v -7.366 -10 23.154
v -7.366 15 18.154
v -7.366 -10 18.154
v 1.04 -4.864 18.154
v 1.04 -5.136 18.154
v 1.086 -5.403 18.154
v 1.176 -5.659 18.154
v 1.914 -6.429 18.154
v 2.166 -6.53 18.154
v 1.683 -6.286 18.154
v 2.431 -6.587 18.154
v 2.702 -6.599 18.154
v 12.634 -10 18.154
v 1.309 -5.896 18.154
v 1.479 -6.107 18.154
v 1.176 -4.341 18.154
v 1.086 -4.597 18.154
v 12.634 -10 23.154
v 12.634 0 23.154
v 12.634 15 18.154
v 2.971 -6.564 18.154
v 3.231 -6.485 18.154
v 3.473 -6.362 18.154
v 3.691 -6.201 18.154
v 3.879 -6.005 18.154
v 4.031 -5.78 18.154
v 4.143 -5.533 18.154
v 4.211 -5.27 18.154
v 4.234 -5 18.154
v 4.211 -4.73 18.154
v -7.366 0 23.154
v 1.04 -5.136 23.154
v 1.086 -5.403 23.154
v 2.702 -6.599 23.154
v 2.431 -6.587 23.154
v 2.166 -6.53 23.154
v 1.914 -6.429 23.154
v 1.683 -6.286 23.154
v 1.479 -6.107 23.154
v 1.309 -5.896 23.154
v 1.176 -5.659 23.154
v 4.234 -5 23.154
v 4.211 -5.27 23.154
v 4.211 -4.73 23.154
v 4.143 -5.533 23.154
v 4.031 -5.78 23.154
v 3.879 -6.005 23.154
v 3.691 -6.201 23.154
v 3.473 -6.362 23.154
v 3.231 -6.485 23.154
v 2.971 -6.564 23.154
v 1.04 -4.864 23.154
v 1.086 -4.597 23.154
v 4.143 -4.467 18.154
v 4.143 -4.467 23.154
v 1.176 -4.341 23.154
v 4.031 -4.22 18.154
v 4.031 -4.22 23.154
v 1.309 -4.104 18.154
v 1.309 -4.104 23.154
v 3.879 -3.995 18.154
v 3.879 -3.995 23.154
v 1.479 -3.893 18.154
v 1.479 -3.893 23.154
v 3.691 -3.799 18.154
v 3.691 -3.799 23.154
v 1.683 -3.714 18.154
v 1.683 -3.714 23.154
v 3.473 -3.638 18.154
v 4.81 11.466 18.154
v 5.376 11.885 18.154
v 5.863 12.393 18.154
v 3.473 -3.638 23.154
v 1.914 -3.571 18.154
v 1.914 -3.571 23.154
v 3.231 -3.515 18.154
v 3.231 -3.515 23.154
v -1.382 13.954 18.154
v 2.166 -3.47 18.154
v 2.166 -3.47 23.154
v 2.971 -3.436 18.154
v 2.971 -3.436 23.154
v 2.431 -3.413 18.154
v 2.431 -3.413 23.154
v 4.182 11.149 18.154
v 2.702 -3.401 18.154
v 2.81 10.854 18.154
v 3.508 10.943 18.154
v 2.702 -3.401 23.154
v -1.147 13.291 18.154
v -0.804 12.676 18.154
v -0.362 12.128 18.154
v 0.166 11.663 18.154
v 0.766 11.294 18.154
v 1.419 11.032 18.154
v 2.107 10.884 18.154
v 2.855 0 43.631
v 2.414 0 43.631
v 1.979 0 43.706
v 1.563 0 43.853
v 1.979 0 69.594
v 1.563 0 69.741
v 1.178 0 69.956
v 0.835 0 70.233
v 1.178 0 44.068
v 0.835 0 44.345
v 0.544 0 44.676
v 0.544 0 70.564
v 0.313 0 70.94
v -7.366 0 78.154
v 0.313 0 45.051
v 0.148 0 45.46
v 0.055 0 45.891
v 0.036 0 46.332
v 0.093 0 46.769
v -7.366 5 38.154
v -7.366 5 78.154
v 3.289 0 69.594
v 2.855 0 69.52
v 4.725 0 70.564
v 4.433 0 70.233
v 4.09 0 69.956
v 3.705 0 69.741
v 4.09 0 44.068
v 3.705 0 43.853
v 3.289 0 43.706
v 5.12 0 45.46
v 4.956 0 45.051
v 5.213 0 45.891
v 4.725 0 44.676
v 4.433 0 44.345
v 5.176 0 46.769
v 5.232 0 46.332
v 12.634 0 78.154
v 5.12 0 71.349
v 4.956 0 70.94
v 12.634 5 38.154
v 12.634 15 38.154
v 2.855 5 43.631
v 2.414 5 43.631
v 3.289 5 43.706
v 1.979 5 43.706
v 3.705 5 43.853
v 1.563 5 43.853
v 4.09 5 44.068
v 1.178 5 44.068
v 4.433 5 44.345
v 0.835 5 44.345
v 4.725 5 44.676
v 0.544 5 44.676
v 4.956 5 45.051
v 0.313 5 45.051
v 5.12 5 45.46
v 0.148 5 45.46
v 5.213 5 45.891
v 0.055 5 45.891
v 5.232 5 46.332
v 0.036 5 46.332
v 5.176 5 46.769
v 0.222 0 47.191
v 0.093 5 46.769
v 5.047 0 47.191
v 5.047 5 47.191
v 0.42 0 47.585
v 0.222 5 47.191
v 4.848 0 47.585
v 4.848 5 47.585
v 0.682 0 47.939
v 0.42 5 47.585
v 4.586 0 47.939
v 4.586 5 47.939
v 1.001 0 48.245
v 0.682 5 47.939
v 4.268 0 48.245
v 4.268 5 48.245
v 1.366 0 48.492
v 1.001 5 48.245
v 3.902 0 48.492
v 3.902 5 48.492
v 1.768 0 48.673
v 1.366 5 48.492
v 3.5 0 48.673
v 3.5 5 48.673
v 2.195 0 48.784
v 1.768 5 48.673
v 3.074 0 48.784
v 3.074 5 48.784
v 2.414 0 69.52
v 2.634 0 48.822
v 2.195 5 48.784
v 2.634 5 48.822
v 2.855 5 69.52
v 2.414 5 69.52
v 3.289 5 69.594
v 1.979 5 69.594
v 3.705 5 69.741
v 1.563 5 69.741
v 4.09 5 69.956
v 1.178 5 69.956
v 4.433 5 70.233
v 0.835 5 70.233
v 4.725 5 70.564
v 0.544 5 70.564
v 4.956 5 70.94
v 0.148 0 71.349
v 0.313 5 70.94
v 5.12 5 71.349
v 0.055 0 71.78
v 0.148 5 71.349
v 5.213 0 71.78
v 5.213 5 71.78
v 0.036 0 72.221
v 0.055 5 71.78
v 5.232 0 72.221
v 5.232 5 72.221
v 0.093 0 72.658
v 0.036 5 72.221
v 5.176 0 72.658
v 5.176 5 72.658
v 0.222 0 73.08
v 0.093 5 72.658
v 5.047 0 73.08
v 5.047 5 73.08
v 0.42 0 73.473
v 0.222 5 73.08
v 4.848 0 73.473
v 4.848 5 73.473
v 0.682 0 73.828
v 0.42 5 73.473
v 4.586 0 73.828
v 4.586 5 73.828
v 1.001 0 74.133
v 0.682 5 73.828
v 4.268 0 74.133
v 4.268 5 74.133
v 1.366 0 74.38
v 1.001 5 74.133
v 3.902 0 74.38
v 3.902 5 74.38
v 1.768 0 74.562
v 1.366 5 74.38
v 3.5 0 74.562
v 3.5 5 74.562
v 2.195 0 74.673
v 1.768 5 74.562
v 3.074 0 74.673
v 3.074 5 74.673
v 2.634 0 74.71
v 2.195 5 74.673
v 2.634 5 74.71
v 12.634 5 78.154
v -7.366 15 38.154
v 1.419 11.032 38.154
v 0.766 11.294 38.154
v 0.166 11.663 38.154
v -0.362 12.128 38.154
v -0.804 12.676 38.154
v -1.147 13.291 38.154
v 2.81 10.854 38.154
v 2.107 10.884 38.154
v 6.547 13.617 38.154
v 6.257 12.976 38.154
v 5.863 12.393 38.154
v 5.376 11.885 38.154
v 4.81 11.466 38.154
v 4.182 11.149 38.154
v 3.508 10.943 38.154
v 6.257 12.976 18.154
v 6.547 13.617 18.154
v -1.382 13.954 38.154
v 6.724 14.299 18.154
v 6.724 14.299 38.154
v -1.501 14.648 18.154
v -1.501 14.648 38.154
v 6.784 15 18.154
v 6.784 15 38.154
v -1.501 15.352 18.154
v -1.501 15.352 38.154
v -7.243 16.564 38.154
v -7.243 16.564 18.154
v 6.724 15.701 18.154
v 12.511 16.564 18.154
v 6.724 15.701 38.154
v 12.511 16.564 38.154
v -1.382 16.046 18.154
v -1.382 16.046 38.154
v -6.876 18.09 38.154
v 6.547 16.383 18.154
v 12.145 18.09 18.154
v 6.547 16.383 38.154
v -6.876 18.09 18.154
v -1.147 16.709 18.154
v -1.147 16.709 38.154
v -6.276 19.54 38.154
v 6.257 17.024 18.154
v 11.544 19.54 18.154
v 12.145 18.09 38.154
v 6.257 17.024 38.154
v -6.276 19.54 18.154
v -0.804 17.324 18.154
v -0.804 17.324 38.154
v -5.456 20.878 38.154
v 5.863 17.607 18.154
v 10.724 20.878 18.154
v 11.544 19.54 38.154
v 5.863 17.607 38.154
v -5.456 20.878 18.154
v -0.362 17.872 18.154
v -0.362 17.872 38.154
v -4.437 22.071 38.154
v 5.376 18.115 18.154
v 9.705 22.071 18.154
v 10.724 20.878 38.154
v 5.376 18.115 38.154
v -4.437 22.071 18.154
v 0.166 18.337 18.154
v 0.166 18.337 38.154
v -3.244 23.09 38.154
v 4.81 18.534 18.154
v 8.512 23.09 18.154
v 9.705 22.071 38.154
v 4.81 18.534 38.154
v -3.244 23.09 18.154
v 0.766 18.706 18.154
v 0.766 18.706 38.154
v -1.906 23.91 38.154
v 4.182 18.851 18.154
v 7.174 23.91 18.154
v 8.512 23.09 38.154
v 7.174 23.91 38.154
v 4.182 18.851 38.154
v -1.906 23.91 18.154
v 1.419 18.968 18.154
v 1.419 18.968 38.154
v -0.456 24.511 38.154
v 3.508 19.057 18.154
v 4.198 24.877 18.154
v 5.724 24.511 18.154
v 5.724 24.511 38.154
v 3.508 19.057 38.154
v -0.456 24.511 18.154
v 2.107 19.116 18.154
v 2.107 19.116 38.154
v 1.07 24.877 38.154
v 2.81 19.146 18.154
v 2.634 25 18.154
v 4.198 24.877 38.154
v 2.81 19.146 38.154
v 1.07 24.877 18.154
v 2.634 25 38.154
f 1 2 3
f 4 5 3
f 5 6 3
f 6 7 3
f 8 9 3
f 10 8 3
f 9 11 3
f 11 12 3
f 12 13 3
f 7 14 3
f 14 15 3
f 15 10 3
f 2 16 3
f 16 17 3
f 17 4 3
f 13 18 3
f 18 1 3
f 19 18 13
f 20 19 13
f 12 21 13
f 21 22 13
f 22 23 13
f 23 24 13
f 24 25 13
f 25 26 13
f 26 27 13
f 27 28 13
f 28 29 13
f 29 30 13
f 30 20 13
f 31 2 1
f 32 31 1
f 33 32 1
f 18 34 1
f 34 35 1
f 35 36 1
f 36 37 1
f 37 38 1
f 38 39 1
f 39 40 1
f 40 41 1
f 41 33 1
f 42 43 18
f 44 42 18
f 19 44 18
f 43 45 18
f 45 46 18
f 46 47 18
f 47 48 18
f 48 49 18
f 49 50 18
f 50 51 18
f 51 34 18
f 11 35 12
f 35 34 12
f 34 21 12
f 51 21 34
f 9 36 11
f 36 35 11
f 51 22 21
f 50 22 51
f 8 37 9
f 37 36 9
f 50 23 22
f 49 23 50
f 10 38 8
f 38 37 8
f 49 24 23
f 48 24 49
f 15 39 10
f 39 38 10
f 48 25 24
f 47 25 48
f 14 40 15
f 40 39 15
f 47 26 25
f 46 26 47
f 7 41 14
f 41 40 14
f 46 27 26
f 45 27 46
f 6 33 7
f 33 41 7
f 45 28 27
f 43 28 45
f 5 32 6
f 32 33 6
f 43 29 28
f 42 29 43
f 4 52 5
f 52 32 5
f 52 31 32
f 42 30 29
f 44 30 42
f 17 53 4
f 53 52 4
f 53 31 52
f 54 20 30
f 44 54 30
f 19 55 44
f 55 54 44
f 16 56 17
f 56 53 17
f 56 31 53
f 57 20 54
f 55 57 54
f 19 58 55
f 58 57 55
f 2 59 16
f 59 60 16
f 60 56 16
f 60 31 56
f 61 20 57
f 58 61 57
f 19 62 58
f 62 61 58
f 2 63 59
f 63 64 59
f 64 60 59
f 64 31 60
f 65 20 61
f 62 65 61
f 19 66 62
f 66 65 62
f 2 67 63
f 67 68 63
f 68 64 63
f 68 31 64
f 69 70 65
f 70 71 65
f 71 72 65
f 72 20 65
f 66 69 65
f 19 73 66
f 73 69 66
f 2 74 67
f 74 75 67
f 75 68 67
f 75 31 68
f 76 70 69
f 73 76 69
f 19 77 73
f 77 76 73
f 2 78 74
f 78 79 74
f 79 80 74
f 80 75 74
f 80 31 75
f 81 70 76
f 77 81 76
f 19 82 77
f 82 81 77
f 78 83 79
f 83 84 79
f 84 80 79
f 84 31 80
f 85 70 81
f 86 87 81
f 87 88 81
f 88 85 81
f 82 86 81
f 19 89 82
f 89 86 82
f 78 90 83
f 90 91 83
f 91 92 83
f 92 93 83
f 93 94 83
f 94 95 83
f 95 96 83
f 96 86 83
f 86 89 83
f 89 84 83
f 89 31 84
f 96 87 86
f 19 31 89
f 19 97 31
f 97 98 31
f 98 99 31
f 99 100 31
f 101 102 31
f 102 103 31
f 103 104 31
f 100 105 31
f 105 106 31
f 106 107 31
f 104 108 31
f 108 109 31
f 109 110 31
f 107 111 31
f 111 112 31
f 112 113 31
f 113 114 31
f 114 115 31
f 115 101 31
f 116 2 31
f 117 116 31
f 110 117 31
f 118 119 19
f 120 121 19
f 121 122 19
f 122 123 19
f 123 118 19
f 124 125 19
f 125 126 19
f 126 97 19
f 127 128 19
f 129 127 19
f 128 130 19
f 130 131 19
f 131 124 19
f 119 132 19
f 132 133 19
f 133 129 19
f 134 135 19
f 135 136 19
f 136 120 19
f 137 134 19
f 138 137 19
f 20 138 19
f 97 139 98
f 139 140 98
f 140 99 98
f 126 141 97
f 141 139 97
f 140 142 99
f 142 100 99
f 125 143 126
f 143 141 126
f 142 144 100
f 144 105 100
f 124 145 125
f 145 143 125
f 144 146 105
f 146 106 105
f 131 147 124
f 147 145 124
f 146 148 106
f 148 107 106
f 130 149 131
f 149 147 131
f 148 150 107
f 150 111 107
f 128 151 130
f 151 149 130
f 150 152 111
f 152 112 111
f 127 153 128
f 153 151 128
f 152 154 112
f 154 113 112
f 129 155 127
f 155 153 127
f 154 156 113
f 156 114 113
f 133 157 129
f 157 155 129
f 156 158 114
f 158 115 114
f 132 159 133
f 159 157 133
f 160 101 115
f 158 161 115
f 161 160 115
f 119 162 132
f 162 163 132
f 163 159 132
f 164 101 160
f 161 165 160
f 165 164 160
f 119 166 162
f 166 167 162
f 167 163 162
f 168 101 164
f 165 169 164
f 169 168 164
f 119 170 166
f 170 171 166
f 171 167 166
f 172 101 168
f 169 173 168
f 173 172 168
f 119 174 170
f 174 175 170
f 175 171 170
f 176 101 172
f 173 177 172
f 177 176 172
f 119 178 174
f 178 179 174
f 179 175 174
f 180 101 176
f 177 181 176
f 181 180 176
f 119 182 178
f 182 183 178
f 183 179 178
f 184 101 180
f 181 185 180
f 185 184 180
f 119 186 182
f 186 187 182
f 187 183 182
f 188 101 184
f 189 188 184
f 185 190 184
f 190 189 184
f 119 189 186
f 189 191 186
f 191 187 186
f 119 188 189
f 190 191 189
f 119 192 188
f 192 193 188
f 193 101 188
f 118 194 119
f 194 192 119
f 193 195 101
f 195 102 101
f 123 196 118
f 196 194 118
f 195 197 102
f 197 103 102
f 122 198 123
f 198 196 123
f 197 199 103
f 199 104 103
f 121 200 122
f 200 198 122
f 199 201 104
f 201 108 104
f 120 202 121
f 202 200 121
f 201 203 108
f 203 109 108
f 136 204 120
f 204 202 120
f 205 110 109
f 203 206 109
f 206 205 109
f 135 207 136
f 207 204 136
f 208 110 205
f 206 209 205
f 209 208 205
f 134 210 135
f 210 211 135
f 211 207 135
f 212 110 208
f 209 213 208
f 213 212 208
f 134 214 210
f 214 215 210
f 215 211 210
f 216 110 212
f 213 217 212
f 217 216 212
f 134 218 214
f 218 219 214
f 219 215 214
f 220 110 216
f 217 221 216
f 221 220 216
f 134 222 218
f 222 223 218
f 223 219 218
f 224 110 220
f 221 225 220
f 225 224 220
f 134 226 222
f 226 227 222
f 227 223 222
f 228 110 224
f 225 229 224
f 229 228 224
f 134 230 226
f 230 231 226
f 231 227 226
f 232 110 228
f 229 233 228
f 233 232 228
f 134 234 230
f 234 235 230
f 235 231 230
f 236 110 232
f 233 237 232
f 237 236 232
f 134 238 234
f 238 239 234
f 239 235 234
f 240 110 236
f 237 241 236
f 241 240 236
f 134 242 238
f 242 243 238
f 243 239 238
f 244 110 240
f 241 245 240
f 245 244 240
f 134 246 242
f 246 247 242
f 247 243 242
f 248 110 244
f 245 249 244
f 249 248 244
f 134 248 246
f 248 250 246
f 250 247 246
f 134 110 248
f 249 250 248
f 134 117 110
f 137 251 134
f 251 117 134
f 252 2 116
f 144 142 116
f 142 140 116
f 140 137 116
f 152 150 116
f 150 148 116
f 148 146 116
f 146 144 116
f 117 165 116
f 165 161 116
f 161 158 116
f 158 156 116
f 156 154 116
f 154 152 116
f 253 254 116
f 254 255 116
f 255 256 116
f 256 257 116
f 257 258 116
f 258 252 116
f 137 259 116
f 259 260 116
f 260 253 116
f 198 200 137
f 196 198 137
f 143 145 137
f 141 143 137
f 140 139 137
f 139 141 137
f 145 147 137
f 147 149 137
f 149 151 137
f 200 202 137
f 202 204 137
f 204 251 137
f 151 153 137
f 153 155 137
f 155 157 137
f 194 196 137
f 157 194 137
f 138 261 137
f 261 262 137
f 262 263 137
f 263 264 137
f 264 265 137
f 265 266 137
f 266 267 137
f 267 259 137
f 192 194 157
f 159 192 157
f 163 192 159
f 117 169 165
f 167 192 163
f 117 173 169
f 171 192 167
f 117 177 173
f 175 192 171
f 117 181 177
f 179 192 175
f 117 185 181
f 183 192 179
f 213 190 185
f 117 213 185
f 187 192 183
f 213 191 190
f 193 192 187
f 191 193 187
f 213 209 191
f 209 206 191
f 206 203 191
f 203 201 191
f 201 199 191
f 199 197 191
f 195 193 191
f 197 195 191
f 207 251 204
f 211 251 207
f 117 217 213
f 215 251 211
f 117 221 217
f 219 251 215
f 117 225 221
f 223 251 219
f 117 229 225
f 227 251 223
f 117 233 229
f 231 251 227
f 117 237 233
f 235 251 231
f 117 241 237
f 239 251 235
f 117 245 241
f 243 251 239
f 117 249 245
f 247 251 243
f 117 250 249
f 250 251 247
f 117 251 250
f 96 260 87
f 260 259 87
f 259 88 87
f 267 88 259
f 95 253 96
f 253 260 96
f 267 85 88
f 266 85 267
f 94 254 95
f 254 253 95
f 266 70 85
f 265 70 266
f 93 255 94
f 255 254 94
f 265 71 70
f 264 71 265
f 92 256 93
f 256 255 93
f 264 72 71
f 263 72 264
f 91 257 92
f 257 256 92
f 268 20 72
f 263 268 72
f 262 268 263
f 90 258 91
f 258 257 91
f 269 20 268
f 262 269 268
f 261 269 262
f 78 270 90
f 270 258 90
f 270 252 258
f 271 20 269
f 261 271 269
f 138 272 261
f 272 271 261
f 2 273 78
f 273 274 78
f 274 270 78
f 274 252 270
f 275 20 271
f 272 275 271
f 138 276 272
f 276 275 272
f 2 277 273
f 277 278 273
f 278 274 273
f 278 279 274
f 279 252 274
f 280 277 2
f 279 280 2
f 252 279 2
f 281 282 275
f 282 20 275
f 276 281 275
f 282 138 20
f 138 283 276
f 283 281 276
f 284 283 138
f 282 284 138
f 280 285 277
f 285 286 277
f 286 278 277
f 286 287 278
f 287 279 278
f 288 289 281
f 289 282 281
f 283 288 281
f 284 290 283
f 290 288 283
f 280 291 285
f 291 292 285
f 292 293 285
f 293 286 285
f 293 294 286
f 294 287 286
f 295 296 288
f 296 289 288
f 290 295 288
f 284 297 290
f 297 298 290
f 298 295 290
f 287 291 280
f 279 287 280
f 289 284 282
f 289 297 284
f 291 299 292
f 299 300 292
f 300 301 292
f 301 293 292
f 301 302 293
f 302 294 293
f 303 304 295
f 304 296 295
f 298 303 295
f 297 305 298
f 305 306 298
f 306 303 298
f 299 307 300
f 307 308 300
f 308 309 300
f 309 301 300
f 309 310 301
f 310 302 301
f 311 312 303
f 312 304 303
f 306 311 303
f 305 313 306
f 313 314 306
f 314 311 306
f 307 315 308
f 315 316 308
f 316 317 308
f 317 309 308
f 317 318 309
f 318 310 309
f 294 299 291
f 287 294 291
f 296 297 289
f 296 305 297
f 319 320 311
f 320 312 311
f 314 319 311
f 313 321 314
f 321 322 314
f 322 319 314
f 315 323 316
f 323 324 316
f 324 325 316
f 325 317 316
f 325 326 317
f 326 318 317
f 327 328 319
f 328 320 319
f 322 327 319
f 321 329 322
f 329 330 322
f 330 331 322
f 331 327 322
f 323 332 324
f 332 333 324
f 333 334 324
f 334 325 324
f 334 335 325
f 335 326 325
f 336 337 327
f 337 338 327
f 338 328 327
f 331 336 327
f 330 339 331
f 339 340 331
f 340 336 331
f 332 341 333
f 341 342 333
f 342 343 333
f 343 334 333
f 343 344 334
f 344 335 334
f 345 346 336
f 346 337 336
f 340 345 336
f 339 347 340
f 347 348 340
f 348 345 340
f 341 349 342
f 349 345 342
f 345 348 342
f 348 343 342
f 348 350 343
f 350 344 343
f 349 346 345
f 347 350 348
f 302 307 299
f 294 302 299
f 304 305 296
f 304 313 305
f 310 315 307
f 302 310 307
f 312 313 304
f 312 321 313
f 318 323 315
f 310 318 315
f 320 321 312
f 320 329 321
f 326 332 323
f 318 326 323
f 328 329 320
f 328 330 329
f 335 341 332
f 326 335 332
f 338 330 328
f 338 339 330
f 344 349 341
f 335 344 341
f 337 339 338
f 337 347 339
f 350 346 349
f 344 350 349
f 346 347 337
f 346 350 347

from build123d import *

# Parameters (mm, degrees)
SKETCH_1_W          = 20
SKETCH_1_H          = 40
EXTRUDE_1_DEPTH     = 5
SKETCH_2_W          = 20
SKETCH_2_H          = 20
EXTRUDE_2_DEPTH     = 20
SKETCH_3_R          = 4.15
CUT_EXTRUDE_1_DEPTH = 42.044142746
FILLET_1_R          = 10
SKETCH_6_W          = 20
SKETCH_6_H          = 25.791536141
CUT_EXTRUDE_3_DEPTH = 54.65112416
SKETCH_7_W          = 20
SKETCH_7_H          = 5
EXTRUDE_5_DEPTH     = 10
SKETCH_8_W          = 20
SKETCH_8_H          = 5
EXTRUDE_6_DEPTH     = 10
SKETCH_10_R         = 1.6
CUT_EXTRUDE_5_DEPTH = 45.828803841
SKETCH_11_W         = 20
SKETCH_11_H         = 5
EXTRUDE_7_DEPTH     = 20
SKETCH_12_R         = 2.6
CUT_EXTRUDE_7_DEPTH = 82.655934826


with BuildPart() as part:
    # 草图1 → 凸台-拉伸1 (new body)
    with BuildSketch(Plane(origin=(0, 0, 0), x_dir=(1, 0, 0), z_dir=(0, 1, 0))):
        with Locations((2.634146341, -28.154142811)):
            Rectangle(SKETCH_1_W, SKETCH_1_H)
    extrude(amount=EXTRUDE_1_DEPTH)

    # 草图2 → 凸台-拉伸2 (add)
    with BuildSketch(Plane(origin=(0, 5, 0), x_dir=(1, 0, 0), z_dir=(0, 1, 0))):
        with Locations((2.634146341, -28.154142811)):
            Rectangle(SKETCH_2_W, SKETCH_2_H)
    extrude(amount=EXTRUDE_2_DEPTH)

    # 草图3 → 切除-拉伸1 (cut, through all)
    with BuildSketch(Plane.XY.offset(38.154142811)):
        with Locations((2.634146341, 15)):
            Circle(SKETCH_3_R)
    extrude(amount=-CUT_EXTRUDE_1_DEPTH, mode=Mode.SUBTRACT)

    # 圆角1
    fillet_1_edges = [part.edges().sort_by_distance(p)[0] for p in [
        (12.634146341, 25, 28.154142811),
        (-7.365853659, 25, 28.154142811),
    ]]
    fillet(fillet_1_edges, radius=FILLET_1_R - 0.0001)  # a hair under: the kernel refuses the full size

    # 草图6 → 切除-拉伸3 (cut, through all)
    with BuildSketch(Plane(origin=(0, 5, 0), x_dir=(1, 0, 0), z_dir=(0, 1, 0))):
        with Locations((2.634146341, -5.25837474)):
            Rectangle(SKETCH_6_W, SKETCH_6_H)
    extrude(amount=-CUT_EXTRUDE_3_DEPTH, mode=Mode.SUBTRACT)

    # 草图7 → 凸台-拉伸5 (add)
    with BuildSketch(Plane.XZ):
        with Locations((2.634146341, 20.654142811)):
            Rectangle(SKETCH_7_W, SKETCH_7_H)
    extrude(amount=EXTRUDE_5_DEPTH)

    # 草图8 → 凸台-拉伸6 (add)
    with BuildSketch(Plane.XY.offset(48.154142811)):
        with Locations((2.634146341, 2.5)):
            Rectangle(SKETCH_8_W, SKETCH_8_H)
    extrude(amount=EXTRUDE_6_DEPTH)

    # 草图10 → 切除-拉伸5 (cut, through all)
    with BuildSketch(Plane.XY.offset(23.154142811)):
        with Locations((2.634146341, -5)):
            Circle(SKETCH_10_R)
    extrude(amount=-CUT_EXTRUDE_5_DEPTH, mode=Mode.SUBTRACT)

    # 草图11 → 凸台-拉伸7 (add)
    with BuildSketch(Plane.XY.offset(58.154142811)):
        with Locations((2.634146341, 2.5)):
            Rectangle(SKETCH_11_W, SKETCH_11_H)
    extrude(amount=EXTRUDE_7_DEPTH)

    # 草图12 → 切除-拉伸7 (cut, through all)
    with BuildSketch(Plane(origin=(0, 5, 0), x_dir=(1, 0, 0), z_dir=(0, 1, 0))):
        with Locations(Location((2.634146341, -46.221727325, 0), (0, 0, 270))):
            Circle(SKETCH_12_R)
        with Locations(Location((2.634146341, -72.110167443, 0), (0, 0, 270))):
            Circle(SKETCH_12_R)
    extrude(amount=-CUT_EXTRUDE_7_DEPTH, mode=Mode.SUBTRACT)


solid = part.part
